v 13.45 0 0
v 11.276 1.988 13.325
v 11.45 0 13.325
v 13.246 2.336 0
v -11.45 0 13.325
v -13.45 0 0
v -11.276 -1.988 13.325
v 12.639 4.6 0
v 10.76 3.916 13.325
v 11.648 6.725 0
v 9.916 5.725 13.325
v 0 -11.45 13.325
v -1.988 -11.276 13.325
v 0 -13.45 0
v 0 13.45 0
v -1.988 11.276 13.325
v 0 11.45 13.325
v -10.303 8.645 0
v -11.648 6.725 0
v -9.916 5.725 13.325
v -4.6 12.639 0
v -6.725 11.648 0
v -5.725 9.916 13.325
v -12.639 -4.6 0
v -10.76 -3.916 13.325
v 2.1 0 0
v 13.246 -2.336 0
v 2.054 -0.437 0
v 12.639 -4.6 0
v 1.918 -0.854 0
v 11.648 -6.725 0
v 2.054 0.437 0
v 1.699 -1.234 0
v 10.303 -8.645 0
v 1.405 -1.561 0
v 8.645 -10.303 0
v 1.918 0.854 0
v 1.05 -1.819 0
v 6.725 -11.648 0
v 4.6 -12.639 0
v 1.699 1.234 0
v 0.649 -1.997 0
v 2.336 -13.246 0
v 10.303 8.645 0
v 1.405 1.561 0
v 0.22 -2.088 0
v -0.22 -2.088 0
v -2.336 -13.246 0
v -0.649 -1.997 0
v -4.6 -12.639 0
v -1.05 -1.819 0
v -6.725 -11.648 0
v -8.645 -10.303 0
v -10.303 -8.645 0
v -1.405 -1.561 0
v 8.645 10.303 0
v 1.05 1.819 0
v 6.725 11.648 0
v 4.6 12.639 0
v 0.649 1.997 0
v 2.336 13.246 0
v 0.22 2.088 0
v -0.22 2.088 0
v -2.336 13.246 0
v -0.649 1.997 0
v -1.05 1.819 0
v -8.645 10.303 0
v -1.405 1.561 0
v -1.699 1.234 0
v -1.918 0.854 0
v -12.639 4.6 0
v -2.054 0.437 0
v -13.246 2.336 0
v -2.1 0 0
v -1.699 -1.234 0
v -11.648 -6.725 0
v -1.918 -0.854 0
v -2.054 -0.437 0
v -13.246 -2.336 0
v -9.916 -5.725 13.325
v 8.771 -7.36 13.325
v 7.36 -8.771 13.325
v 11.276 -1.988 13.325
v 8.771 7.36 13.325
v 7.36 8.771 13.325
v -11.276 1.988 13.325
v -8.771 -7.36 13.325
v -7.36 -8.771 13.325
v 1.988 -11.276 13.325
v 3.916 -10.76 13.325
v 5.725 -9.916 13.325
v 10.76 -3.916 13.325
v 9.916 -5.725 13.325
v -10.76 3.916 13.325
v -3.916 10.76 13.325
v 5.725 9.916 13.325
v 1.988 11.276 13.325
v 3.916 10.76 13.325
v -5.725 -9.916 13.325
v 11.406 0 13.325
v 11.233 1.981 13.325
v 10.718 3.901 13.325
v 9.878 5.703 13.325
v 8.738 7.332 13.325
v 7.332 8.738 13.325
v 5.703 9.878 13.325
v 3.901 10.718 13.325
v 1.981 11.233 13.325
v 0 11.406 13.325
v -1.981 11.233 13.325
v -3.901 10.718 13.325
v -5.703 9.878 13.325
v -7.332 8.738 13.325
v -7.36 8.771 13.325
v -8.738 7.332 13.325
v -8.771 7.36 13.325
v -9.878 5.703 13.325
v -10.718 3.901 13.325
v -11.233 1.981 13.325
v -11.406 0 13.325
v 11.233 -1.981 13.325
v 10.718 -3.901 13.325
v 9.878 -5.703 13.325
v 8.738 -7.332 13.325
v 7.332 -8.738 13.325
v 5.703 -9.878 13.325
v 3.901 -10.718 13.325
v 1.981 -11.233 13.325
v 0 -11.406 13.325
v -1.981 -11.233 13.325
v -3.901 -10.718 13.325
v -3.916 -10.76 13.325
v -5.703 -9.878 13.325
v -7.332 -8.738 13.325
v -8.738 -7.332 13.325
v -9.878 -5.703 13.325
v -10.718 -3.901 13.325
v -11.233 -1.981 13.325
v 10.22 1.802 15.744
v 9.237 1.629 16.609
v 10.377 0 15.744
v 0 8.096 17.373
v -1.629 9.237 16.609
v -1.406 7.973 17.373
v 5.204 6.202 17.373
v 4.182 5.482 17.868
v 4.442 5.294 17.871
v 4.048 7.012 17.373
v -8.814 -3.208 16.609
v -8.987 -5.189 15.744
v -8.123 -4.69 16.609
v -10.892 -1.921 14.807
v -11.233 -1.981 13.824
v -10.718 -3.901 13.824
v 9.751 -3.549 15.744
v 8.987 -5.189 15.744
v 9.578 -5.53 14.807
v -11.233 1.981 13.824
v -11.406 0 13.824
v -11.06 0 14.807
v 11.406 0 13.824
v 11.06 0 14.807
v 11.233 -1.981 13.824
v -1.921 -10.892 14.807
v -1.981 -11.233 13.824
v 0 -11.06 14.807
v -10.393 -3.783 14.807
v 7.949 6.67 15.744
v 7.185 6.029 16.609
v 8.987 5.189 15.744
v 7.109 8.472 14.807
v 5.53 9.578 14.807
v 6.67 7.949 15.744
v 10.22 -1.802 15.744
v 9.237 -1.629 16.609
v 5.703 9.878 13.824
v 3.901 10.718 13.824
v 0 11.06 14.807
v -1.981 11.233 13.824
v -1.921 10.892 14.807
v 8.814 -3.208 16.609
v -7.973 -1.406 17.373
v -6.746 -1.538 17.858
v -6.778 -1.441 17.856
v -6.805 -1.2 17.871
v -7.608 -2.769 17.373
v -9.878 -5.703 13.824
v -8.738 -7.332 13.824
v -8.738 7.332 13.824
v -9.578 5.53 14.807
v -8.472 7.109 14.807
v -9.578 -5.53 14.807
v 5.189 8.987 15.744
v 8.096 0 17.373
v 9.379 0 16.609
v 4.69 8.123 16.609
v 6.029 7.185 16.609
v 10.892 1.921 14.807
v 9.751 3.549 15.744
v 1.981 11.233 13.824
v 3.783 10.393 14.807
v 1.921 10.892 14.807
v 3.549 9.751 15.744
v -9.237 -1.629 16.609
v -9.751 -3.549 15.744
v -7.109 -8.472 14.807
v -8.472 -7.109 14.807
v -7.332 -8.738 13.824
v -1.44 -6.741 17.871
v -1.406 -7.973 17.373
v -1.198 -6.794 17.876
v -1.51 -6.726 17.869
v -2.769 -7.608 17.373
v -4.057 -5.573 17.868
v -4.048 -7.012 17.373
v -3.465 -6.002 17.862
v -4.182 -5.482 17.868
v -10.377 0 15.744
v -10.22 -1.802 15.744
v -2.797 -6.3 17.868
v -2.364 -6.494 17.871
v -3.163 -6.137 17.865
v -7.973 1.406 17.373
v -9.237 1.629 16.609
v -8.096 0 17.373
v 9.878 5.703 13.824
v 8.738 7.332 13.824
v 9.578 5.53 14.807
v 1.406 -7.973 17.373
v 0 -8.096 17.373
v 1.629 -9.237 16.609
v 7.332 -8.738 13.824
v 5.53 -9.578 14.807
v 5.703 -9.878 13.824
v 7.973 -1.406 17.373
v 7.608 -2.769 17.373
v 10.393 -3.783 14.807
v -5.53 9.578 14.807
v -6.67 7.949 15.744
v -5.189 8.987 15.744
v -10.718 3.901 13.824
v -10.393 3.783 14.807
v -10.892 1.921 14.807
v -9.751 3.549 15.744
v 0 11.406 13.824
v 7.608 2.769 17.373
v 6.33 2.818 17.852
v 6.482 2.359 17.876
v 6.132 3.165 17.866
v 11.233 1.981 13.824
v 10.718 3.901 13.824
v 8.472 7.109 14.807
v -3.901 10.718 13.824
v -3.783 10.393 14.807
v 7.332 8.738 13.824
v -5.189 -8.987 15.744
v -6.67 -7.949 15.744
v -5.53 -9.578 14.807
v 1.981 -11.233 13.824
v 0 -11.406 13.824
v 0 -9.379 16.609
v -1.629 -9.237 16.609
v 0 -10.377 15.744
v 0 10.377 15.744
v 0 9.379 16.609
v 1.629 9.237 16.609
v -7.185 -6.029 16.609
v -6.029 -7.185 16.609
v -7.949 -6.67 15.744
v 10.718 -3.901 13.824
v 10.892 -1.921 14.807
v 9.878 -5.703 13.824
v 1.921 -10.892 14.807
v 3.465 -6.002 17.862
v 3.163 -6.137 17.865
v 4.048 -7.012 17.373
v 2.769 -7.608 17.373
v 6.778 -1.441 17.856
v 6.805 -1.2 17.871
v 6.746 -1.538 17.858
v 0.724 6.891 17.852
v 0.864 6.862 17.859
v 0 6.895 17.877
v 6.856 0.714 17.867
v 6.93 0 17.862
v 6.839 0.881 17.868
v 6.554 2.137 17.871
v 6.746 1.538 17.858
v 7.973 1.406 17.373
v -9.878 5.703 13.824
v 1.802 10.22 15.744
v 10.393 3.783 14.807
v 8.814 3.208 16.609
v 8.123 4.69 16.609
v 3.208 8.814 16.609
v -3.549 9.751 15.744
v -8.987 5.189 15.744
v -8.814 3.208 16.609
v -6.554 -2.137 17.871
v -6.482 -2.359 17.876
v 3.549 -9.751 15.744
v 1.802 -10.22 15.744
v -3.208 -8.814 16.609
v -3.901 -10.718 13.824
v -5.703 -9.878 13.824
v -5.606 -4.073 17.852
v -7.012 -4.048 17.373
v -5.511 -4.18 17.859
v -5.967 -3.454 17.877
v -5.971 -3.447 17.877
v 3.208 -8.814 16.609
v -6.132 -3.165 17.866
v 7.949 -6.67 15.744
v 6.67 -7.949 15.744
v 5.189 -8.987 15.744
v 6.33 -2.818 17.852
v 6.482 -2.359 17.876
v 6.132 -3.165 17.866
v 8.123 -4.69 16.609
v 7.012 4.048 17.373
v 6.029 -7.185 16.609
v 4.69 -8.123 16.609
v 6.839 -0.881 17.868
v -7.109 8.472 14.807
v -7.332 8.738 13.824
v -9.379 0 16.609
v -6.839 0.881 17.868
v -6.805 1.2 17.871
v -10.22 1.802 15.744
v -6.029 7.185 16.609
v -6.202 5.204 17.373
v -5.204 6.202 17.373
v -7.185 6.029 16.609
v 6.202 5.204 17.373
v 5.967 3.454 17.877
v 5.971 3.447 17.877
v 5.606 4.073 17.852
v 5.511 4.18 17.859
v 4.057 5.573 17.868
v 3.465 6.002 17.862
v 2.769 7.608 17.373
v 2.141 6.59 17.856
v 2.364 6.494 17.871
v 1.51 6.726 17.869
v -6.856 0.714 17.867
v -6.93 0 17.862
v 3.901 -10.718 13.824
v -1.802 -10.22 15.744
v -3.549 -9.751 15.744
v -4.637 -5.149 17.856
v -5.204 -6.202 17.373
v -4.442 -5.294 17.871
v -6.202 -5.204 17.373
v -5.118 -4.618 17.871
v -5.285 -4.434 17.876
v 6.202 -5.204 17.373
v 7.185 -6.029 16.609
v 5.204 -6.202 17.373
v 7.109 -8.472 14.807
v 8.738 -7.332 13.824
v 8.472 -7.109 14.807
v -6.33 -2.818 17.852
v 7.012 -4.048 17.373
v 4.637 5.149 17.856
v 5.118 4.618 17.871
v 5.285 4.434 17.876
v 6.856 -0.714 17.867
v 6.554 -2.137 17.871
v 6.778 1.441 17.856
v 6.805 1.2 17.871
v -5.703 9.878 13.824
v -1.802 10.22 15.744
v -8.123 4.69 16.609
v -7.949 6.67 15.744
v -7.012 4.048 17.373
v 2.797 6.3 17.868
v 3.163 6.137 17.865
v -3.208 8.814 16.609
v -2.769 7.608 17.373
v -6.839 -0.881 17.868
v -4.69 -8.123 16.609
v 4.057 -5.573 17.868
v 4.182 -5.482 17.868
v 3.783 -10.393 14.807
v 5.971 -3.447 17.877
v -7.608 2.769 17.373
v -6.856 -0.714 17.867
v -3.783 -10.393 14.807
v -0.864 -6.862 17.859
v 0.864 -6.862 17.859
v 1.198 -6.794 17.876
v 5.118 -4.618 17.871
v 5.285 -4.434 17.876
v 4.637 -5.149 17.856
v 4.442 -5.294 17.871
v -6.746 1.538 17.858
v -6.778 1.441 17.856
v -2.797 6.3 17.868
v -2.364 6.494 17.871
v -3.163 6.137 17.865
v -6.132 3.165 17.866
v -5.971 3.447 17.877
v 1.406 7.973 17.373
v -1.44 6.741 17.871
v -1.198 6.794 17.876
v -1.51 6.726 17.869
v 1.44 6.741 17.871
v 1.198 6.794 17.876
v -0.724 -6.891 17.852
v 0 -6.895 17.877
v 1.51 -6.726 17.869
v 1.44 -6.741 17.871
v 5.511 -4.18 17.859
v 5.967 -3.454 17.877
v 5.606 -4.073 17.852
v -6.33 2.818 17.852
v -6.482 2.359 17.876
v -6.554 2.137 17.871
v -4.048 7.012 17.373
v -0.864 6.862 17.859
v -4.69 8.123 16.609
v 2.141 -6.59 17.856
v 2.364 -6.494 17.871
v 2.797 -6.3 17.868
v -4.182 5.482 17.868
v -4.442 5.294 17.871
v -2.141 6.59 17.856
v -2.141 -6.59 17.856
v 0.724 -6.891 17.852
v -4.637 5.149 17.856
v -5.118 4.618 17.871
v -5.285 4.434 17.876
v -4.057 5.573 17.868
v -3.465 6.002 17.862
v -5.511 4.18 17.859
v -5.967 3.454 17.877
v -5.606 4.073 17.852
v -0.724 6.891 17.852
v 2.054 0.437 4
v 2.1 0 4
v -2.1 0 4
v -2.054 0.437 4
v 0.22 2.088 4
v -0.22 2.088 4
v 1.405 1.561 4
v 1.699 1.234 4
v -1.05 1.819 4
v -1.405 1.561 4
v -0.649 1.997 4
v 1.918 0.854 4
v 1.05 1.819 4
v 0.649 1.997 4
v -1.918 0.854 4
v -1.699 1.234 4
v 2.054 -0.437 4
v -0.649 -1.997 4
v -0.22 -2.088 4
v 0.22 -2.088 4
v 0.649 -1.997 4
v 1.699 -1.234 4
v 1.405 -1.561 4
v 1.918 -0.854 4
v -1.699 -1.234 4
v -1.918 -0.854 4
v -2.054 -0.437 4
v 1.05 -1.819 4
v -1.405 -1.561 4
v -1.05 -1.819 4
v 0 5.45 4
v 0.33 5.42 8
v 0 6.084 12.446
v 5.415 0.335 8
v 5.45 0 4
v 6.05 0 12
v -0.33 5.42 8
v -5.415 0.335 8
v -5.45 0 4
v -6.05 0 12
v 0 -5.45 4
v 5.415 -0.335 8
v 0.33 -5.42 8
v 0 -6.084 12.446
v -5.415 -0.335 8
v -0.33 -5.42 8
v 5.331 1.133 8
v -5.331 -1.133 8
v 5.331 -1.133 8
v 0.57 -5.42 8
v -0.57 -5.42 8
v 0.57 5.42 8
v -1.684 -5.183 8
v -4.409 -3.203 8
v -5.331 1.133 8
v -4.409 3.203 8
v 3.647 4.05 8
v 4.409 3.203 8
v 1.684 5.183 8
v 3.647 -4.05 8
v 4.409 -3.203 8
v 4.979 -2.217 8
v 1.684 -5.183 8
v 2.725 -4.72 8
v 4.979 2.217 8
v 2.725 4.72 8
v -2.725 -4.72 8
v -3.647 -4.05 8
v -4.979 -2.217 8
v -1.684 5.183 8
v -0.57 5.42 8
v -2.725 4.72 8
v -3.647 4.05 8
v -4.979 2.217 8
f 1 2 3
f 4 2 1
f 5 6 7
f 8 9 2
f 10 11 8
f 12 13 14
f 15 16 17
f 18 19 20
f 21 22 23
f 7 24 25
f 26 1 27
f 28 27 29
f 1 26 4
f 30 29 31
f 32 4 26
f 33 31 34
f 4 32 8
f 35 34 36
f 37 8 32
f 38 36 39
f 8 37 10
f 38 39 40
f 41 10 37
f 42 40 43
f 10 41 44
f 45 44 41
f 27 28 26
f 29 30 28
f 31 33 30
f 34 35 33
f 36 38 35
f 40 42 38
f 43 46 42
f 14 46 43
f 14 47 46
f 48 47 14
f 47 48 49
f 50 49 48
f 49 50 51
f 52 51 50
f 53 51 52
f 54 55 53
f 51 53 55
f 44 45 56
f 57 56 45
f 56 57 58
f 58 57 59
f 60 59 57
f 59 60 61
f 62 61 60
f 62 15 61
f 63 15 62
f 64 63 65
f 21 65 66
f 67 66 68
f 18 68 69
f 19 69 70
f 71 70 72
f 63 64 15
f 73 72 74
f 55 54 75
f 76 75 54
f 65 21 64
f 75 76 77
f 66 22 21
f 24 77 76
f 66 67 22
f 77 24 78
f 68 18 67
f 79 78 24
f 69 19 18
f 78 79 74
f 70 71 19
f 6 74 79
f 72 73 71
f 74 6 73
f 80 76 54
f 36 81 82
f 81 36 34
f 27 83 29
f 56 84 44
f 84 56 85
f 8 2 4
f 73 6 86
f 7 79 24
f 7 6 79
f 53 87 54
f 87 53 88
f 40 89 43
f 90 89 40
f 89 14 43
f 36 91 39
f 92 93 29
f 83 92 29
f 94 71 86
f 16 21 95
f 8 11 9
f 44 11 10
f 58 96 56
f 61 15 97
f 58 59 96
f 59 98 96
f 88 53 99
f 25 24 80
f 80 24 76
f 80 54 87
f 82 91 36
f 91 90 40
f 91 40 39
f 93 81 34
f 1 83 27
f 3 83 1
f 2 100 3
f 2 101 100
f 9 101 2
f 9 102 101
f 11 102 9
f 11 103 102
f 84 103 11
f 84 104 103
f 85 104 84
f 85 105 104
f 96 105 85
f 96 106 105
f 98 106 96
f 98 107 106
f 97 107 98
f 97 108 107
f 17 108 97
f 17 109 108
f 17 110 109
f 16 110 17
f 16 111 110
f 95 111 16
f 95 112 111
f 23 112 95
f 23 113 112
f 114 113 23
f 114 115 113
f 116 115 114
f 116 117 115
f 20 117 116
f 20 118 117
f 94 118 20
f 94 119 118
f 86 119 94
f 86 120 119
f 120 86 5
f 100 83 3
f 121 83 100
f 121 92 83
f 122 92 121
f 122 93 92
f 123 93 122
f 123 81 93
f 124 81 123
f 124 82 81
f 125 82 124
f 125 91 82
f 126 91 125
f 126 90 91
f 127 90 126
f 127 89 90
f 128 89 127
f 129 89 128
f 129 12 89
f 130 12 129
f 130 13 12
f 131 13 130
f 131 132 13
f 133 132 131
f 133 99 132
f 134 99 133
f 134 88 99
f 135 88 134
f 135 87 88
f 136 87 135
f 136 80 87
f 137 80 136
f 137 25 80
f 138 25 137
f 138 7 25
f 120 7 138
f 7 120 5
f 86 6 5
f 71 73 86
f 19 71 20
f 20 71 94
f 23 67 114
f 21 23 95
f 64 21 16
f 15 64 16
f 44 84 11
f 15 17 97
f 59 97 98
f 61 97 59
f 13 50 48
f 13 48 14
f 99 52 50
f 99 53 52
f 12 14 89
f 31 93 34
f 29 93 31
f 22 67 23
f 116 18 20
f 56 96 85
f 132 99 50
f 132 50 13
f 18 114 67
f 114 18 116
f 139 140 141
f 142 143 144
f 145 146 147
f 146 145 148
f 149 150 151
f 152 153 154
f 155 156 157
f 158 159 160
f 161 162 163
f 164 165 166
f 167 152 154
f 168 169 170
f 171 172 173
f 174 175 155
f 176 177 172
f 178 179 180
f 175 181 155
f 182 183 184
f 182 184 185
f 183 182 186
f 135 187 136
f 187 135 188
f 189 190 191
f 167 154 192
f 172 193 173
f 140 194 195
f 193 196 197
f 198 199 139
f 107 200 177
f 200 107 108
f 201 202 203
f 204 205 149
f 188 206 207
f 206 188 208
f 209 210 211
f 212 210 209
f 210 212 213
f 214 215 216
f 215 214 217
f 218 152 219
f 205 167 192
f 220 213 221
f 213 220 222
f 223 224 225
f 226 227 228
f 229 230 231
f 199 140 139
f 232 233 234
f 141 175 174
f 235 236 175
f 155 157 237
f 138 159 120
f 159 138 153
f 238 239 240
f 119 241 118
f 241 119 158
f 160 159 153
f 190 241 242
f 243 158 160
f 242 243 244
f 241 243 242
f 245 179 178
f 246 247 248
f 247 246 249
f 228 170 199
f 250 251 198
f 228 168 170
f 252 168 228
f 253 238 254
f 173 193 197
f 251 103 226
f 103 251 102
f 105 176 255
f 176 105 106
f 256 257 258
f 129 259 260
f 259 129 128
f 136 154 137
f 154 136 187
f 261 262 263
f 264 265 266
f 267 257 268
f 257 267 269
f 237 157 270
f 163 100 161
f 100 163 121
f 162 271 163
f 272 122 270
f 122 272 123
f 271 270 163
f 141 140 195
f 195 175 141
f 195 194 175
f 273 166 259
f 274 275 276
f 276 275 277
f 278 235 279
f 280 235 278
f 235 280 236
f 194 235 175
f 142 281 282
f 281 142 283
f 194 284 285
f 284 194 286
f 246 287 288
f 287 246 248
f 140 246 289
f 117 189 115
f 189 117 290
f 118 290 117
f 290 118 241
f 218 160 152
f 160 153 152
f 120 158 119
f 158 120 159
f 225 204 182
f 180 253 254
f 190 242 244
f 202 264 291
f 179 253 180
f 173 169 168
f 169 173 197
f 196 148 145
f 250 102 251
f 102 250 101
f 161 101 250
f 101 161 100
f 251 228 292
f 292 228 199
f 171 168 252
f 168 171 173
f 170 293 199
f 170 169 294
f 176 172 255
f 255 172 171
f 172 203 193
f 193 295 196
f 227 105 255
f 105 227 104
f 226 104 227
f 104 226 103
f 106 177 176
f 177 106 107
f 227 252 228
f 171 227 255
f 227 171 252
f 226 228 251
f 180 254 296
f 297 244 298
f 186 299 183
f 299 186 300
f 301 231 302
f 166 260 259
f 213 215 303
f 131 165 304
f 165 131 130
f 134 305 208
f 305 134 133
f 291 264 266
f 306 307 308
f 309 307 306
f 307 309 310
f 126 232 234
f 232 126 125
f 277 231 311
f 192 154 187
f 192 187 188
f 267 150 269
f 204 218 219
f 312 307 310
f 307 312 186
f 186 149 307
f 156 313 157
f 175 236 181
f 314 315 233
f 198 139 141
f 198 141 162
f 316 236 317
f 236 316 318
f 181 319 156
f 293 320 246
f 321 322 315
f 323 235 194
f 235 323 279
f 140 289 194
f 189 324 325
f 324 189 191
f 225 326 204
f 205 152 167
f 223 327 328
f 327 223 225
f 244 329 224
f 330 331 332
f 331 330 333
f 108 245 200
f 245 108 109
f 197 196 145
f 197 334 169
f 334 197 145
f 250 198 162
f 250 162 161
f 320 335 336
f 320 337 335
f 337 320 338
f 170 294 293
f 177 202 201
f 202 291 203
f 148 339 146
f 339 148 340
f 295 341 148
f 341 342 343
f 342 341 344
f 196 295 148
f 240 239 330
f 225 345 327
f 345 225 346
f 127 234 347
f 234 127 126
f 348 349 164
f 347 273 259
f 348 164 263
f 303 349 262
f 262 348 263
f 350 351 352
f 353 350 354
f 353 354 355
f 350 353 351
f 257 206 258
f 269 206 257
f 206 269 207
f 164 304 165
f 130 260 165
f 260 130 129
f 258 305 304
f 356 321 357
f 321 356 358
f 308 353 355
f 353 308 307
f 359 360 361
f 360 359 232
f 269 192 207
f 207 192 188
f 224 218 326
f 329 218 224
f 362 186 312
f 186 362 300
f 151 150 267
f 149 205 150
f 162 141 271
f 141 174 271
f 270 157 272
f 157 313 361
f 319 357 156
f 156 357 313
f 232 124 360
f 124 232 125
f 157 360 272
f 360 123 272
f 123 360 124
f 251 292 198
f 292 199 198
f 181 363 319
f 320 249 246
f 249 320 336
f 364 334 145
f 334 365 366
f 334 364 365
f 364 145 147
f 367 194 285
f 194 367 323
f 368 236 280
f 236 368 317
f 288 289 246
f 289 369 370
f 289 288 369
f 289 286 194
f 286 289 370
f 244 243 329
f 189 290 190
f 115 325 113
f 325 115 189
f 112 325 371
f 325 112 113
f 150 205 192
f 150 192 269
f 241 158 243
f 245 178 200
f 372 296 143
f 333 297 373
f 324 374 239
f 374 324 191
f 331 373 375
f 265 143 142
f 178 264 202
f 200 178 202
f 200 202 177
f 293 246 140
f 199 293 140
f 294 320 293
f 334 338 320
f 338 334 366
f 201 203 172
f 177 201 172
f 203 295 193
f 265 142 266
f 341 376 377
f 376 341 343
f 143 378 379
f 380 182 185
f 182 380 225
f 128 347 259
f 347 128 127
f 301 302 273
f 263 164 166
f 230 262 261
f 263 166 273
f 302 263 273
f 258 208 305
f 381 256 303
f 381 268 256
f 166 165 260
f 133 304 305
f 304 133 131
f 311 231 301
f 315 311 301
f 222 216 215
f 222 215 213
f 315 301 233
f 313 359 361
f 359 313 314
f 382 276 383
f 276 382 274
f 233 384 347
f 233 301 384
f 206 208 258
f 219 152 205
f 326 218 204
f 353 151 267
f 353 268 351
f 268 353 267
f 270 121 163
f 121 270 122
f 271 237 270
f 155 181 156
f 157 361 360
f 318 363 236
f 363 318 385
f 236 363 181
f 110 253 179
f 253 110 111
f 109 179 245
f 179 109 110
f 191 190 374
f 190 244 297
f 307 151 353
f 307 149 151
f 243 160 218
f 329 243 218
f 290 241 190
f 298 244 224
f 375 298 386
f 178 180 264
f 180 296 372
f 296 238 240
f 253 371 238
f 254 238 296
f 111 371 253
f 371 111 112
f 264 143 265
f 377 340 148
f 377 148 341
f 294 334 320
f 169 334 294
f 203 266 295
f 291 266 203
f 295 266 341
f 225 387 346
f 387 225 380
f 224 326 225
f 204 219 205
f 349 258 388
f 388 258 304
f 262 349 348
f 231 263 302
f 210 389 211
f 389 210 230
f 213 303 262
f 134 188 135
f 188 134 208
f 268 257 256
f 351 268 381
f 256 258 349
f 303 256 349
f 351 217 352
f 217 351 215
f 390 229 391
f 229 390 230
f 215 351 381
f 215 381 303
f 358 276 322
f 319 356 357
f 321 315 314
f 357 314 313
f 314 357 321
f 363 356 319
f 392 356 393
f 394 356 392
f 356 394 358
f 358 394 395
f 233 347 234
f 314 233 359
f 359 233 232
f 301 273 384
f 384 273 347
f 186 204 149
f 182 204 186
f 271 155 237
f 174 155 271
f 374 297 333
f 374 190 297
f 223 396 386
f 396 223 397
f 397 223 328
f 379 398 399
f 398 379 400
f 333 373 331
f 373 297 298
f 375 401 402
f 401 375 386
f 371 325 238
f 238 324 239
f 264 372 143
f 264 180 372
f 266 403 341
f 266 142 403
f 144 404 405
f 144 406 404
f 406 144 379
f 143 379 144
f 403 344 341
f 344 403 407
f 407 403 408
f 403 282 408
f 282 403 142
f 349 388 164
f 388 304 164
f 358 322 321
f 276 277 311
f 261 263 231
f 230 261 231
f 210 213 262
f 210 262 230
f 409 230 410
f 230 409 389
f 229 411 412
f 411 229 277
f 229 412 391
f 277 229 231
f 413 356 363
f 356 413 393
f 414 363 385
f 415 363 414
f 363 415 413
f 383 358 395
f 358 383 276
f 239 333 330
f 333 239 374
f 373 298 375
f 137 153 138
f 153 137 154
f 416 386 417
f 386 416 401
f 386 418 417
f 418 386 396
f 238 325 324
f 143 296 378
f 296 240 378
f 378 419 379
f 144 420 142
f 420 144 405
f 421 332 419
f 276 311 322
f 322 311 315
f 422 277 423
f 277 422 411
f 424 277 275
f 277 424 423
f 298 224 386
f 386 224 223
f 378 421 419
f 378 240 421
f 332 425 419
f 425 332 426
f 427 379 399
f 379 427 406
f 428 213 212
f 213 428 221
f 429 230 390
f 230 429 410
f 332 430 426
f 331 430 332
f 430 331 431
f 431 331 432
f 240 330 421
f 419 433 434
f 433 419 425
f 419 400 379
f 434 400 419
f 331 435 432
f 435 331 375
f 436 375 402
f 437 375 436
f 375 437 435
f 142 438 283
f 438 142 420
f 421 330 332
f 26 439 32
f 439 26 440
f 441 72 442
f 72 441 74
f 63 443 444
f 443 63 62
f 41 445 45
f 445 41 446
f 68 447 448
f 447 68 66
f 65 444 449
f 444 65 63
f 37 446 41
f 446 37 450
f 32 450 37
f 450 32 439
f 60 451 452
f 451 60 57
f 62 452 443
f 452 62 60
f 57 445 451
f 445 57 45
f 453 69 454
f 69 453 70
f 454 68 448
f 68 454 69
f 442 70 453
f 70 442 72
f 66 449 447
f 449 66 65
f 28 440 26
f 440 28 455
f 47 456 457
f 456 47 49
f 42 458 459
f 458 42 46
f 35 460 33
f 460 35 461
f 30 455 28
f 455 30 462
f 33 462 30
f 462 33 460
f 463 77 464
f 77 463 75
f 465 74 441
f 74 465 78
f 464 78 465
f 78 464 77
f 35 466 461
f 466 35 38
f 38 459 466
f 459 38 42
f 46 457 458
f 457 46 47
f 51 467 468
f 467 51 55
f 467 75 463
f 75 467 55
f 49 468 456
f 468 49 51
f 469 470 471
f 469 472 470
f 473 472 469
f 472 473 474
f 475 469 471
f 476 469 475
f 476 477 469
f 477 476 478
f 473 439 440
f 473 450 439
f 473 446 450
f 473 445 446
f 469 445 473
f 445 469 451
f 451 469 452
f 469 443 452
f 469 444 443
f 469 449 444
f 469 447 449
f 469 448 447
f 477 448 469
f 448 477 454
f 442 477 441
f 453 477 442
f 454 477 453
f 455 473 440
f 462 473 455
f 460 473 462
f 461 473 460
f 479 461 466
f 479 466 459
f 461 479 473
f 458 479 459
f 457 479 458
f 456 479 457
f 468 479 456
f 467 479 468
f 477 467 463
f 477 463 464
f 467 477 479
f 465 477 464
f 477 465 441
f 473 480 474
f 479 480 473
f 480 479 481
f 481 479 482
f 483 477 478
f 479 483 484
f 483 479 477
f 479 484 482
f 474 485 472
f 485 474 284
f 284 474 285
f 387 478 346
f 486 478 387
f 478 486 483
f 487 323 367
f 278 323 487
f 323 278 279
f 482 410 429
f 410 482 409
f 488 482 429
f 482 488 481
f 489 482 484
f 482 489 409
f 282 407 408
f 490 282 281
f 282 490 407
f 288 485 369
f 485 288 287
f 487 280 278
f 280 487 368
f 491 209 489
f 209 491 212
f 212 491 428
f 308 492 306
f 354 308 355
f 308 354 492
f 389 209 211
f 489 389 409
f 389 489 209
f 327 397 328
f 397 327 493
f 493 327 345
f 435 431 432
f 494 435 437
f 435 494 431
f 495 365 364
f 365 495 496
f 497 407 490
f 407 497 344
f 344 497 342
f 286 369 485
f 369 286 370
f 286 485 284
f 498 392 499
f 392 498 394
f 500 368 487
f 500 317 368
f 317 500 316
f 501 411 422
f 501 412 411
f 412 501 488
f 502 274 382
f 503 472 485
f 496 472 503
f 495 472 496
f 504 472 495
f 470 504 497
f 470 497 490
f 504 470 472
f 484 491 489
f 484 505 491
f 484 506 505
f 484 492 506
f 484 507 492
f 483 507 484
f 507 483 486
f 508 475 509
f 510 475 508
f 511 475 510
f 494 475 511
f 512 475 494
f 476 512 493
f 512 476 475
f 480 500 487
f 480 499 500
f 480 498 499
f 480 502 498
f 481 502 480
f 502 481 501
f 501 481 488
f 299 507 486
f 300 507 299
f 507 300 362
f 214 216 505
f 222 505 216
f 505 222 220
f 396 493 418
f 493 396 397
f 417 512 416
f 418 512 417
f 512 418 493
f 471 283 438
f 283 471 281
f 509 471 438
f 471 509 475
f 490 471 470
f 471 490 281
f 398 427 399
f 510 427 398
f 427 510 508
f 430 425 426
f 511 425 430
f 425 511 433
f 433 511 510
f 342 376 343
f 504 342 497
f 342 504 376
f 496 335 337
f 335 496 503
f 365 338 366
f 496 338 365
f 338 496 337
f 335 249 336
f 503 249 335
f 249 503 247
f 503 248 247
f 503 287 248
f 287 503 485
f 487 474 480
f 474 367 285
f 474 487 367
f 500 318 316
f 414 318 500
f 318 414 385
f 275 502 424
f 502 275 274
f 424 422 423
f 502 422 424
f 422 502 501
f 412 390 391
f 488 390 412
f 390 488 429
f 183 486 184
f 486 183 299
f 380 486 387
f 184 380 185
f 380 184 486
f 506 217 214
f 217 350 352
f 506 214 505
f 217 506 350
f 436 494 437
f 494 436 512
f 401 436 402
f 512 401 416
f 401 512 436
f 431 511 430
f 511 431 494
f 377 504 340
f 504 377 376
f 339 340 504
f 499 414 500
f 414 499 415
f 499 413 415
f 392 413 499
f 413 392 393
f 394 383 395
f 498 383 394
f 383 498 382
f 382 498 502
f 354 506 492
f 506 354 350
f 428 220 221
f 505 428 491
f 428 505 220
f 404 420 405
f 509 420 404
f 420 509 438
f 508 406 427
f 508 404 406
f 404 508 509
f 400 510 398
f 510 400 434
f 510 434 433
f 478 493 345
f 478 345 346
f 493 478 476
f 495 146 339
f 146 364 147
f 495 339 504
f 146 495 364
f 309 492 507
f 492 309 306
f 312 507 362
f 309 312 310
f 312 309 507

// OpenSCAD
foot(taper = true);

wall=2;
bolt_rad = 2.1;
nut_rad = 10.9/2;  //6-32 square nut

foot_rad = nut_rad+wall*4;

foot_height = 25.4*3/4-(foot_rad-wall)/2;

$fn=30;

module foot(){
	difference(){
		union(){
			cylinder(r1=foot_rad, r2=foot_rad-wall, h=foot_height, $fn=36);
			translate([0,0,foot_height]) scale([1,1,.5]) sphere(r=foot_rad-wall, $fn=36);
		}
		
		translate([0,0,-.1]) cylinder(r=bolt_rad, h=25);
		translate([0,0,wall*2]) cylinder(r1=nut_rad, r2=nut_rad+1, h=foot_height, $fn=4);
		translate([0,0,wall*2+wall*2]) cylinder(r1=nut_rad, r2=nut_rad+4, h=foot_height*2);
		

		//scallop the edges, to put cables through the etrusion
		//for(i=[0:1]) mirror([i,0,0]) translate([foot_rad,0,-.1]) scale([1,1,1.5]) sphere(r=foot_rad-wall);
	}
}
